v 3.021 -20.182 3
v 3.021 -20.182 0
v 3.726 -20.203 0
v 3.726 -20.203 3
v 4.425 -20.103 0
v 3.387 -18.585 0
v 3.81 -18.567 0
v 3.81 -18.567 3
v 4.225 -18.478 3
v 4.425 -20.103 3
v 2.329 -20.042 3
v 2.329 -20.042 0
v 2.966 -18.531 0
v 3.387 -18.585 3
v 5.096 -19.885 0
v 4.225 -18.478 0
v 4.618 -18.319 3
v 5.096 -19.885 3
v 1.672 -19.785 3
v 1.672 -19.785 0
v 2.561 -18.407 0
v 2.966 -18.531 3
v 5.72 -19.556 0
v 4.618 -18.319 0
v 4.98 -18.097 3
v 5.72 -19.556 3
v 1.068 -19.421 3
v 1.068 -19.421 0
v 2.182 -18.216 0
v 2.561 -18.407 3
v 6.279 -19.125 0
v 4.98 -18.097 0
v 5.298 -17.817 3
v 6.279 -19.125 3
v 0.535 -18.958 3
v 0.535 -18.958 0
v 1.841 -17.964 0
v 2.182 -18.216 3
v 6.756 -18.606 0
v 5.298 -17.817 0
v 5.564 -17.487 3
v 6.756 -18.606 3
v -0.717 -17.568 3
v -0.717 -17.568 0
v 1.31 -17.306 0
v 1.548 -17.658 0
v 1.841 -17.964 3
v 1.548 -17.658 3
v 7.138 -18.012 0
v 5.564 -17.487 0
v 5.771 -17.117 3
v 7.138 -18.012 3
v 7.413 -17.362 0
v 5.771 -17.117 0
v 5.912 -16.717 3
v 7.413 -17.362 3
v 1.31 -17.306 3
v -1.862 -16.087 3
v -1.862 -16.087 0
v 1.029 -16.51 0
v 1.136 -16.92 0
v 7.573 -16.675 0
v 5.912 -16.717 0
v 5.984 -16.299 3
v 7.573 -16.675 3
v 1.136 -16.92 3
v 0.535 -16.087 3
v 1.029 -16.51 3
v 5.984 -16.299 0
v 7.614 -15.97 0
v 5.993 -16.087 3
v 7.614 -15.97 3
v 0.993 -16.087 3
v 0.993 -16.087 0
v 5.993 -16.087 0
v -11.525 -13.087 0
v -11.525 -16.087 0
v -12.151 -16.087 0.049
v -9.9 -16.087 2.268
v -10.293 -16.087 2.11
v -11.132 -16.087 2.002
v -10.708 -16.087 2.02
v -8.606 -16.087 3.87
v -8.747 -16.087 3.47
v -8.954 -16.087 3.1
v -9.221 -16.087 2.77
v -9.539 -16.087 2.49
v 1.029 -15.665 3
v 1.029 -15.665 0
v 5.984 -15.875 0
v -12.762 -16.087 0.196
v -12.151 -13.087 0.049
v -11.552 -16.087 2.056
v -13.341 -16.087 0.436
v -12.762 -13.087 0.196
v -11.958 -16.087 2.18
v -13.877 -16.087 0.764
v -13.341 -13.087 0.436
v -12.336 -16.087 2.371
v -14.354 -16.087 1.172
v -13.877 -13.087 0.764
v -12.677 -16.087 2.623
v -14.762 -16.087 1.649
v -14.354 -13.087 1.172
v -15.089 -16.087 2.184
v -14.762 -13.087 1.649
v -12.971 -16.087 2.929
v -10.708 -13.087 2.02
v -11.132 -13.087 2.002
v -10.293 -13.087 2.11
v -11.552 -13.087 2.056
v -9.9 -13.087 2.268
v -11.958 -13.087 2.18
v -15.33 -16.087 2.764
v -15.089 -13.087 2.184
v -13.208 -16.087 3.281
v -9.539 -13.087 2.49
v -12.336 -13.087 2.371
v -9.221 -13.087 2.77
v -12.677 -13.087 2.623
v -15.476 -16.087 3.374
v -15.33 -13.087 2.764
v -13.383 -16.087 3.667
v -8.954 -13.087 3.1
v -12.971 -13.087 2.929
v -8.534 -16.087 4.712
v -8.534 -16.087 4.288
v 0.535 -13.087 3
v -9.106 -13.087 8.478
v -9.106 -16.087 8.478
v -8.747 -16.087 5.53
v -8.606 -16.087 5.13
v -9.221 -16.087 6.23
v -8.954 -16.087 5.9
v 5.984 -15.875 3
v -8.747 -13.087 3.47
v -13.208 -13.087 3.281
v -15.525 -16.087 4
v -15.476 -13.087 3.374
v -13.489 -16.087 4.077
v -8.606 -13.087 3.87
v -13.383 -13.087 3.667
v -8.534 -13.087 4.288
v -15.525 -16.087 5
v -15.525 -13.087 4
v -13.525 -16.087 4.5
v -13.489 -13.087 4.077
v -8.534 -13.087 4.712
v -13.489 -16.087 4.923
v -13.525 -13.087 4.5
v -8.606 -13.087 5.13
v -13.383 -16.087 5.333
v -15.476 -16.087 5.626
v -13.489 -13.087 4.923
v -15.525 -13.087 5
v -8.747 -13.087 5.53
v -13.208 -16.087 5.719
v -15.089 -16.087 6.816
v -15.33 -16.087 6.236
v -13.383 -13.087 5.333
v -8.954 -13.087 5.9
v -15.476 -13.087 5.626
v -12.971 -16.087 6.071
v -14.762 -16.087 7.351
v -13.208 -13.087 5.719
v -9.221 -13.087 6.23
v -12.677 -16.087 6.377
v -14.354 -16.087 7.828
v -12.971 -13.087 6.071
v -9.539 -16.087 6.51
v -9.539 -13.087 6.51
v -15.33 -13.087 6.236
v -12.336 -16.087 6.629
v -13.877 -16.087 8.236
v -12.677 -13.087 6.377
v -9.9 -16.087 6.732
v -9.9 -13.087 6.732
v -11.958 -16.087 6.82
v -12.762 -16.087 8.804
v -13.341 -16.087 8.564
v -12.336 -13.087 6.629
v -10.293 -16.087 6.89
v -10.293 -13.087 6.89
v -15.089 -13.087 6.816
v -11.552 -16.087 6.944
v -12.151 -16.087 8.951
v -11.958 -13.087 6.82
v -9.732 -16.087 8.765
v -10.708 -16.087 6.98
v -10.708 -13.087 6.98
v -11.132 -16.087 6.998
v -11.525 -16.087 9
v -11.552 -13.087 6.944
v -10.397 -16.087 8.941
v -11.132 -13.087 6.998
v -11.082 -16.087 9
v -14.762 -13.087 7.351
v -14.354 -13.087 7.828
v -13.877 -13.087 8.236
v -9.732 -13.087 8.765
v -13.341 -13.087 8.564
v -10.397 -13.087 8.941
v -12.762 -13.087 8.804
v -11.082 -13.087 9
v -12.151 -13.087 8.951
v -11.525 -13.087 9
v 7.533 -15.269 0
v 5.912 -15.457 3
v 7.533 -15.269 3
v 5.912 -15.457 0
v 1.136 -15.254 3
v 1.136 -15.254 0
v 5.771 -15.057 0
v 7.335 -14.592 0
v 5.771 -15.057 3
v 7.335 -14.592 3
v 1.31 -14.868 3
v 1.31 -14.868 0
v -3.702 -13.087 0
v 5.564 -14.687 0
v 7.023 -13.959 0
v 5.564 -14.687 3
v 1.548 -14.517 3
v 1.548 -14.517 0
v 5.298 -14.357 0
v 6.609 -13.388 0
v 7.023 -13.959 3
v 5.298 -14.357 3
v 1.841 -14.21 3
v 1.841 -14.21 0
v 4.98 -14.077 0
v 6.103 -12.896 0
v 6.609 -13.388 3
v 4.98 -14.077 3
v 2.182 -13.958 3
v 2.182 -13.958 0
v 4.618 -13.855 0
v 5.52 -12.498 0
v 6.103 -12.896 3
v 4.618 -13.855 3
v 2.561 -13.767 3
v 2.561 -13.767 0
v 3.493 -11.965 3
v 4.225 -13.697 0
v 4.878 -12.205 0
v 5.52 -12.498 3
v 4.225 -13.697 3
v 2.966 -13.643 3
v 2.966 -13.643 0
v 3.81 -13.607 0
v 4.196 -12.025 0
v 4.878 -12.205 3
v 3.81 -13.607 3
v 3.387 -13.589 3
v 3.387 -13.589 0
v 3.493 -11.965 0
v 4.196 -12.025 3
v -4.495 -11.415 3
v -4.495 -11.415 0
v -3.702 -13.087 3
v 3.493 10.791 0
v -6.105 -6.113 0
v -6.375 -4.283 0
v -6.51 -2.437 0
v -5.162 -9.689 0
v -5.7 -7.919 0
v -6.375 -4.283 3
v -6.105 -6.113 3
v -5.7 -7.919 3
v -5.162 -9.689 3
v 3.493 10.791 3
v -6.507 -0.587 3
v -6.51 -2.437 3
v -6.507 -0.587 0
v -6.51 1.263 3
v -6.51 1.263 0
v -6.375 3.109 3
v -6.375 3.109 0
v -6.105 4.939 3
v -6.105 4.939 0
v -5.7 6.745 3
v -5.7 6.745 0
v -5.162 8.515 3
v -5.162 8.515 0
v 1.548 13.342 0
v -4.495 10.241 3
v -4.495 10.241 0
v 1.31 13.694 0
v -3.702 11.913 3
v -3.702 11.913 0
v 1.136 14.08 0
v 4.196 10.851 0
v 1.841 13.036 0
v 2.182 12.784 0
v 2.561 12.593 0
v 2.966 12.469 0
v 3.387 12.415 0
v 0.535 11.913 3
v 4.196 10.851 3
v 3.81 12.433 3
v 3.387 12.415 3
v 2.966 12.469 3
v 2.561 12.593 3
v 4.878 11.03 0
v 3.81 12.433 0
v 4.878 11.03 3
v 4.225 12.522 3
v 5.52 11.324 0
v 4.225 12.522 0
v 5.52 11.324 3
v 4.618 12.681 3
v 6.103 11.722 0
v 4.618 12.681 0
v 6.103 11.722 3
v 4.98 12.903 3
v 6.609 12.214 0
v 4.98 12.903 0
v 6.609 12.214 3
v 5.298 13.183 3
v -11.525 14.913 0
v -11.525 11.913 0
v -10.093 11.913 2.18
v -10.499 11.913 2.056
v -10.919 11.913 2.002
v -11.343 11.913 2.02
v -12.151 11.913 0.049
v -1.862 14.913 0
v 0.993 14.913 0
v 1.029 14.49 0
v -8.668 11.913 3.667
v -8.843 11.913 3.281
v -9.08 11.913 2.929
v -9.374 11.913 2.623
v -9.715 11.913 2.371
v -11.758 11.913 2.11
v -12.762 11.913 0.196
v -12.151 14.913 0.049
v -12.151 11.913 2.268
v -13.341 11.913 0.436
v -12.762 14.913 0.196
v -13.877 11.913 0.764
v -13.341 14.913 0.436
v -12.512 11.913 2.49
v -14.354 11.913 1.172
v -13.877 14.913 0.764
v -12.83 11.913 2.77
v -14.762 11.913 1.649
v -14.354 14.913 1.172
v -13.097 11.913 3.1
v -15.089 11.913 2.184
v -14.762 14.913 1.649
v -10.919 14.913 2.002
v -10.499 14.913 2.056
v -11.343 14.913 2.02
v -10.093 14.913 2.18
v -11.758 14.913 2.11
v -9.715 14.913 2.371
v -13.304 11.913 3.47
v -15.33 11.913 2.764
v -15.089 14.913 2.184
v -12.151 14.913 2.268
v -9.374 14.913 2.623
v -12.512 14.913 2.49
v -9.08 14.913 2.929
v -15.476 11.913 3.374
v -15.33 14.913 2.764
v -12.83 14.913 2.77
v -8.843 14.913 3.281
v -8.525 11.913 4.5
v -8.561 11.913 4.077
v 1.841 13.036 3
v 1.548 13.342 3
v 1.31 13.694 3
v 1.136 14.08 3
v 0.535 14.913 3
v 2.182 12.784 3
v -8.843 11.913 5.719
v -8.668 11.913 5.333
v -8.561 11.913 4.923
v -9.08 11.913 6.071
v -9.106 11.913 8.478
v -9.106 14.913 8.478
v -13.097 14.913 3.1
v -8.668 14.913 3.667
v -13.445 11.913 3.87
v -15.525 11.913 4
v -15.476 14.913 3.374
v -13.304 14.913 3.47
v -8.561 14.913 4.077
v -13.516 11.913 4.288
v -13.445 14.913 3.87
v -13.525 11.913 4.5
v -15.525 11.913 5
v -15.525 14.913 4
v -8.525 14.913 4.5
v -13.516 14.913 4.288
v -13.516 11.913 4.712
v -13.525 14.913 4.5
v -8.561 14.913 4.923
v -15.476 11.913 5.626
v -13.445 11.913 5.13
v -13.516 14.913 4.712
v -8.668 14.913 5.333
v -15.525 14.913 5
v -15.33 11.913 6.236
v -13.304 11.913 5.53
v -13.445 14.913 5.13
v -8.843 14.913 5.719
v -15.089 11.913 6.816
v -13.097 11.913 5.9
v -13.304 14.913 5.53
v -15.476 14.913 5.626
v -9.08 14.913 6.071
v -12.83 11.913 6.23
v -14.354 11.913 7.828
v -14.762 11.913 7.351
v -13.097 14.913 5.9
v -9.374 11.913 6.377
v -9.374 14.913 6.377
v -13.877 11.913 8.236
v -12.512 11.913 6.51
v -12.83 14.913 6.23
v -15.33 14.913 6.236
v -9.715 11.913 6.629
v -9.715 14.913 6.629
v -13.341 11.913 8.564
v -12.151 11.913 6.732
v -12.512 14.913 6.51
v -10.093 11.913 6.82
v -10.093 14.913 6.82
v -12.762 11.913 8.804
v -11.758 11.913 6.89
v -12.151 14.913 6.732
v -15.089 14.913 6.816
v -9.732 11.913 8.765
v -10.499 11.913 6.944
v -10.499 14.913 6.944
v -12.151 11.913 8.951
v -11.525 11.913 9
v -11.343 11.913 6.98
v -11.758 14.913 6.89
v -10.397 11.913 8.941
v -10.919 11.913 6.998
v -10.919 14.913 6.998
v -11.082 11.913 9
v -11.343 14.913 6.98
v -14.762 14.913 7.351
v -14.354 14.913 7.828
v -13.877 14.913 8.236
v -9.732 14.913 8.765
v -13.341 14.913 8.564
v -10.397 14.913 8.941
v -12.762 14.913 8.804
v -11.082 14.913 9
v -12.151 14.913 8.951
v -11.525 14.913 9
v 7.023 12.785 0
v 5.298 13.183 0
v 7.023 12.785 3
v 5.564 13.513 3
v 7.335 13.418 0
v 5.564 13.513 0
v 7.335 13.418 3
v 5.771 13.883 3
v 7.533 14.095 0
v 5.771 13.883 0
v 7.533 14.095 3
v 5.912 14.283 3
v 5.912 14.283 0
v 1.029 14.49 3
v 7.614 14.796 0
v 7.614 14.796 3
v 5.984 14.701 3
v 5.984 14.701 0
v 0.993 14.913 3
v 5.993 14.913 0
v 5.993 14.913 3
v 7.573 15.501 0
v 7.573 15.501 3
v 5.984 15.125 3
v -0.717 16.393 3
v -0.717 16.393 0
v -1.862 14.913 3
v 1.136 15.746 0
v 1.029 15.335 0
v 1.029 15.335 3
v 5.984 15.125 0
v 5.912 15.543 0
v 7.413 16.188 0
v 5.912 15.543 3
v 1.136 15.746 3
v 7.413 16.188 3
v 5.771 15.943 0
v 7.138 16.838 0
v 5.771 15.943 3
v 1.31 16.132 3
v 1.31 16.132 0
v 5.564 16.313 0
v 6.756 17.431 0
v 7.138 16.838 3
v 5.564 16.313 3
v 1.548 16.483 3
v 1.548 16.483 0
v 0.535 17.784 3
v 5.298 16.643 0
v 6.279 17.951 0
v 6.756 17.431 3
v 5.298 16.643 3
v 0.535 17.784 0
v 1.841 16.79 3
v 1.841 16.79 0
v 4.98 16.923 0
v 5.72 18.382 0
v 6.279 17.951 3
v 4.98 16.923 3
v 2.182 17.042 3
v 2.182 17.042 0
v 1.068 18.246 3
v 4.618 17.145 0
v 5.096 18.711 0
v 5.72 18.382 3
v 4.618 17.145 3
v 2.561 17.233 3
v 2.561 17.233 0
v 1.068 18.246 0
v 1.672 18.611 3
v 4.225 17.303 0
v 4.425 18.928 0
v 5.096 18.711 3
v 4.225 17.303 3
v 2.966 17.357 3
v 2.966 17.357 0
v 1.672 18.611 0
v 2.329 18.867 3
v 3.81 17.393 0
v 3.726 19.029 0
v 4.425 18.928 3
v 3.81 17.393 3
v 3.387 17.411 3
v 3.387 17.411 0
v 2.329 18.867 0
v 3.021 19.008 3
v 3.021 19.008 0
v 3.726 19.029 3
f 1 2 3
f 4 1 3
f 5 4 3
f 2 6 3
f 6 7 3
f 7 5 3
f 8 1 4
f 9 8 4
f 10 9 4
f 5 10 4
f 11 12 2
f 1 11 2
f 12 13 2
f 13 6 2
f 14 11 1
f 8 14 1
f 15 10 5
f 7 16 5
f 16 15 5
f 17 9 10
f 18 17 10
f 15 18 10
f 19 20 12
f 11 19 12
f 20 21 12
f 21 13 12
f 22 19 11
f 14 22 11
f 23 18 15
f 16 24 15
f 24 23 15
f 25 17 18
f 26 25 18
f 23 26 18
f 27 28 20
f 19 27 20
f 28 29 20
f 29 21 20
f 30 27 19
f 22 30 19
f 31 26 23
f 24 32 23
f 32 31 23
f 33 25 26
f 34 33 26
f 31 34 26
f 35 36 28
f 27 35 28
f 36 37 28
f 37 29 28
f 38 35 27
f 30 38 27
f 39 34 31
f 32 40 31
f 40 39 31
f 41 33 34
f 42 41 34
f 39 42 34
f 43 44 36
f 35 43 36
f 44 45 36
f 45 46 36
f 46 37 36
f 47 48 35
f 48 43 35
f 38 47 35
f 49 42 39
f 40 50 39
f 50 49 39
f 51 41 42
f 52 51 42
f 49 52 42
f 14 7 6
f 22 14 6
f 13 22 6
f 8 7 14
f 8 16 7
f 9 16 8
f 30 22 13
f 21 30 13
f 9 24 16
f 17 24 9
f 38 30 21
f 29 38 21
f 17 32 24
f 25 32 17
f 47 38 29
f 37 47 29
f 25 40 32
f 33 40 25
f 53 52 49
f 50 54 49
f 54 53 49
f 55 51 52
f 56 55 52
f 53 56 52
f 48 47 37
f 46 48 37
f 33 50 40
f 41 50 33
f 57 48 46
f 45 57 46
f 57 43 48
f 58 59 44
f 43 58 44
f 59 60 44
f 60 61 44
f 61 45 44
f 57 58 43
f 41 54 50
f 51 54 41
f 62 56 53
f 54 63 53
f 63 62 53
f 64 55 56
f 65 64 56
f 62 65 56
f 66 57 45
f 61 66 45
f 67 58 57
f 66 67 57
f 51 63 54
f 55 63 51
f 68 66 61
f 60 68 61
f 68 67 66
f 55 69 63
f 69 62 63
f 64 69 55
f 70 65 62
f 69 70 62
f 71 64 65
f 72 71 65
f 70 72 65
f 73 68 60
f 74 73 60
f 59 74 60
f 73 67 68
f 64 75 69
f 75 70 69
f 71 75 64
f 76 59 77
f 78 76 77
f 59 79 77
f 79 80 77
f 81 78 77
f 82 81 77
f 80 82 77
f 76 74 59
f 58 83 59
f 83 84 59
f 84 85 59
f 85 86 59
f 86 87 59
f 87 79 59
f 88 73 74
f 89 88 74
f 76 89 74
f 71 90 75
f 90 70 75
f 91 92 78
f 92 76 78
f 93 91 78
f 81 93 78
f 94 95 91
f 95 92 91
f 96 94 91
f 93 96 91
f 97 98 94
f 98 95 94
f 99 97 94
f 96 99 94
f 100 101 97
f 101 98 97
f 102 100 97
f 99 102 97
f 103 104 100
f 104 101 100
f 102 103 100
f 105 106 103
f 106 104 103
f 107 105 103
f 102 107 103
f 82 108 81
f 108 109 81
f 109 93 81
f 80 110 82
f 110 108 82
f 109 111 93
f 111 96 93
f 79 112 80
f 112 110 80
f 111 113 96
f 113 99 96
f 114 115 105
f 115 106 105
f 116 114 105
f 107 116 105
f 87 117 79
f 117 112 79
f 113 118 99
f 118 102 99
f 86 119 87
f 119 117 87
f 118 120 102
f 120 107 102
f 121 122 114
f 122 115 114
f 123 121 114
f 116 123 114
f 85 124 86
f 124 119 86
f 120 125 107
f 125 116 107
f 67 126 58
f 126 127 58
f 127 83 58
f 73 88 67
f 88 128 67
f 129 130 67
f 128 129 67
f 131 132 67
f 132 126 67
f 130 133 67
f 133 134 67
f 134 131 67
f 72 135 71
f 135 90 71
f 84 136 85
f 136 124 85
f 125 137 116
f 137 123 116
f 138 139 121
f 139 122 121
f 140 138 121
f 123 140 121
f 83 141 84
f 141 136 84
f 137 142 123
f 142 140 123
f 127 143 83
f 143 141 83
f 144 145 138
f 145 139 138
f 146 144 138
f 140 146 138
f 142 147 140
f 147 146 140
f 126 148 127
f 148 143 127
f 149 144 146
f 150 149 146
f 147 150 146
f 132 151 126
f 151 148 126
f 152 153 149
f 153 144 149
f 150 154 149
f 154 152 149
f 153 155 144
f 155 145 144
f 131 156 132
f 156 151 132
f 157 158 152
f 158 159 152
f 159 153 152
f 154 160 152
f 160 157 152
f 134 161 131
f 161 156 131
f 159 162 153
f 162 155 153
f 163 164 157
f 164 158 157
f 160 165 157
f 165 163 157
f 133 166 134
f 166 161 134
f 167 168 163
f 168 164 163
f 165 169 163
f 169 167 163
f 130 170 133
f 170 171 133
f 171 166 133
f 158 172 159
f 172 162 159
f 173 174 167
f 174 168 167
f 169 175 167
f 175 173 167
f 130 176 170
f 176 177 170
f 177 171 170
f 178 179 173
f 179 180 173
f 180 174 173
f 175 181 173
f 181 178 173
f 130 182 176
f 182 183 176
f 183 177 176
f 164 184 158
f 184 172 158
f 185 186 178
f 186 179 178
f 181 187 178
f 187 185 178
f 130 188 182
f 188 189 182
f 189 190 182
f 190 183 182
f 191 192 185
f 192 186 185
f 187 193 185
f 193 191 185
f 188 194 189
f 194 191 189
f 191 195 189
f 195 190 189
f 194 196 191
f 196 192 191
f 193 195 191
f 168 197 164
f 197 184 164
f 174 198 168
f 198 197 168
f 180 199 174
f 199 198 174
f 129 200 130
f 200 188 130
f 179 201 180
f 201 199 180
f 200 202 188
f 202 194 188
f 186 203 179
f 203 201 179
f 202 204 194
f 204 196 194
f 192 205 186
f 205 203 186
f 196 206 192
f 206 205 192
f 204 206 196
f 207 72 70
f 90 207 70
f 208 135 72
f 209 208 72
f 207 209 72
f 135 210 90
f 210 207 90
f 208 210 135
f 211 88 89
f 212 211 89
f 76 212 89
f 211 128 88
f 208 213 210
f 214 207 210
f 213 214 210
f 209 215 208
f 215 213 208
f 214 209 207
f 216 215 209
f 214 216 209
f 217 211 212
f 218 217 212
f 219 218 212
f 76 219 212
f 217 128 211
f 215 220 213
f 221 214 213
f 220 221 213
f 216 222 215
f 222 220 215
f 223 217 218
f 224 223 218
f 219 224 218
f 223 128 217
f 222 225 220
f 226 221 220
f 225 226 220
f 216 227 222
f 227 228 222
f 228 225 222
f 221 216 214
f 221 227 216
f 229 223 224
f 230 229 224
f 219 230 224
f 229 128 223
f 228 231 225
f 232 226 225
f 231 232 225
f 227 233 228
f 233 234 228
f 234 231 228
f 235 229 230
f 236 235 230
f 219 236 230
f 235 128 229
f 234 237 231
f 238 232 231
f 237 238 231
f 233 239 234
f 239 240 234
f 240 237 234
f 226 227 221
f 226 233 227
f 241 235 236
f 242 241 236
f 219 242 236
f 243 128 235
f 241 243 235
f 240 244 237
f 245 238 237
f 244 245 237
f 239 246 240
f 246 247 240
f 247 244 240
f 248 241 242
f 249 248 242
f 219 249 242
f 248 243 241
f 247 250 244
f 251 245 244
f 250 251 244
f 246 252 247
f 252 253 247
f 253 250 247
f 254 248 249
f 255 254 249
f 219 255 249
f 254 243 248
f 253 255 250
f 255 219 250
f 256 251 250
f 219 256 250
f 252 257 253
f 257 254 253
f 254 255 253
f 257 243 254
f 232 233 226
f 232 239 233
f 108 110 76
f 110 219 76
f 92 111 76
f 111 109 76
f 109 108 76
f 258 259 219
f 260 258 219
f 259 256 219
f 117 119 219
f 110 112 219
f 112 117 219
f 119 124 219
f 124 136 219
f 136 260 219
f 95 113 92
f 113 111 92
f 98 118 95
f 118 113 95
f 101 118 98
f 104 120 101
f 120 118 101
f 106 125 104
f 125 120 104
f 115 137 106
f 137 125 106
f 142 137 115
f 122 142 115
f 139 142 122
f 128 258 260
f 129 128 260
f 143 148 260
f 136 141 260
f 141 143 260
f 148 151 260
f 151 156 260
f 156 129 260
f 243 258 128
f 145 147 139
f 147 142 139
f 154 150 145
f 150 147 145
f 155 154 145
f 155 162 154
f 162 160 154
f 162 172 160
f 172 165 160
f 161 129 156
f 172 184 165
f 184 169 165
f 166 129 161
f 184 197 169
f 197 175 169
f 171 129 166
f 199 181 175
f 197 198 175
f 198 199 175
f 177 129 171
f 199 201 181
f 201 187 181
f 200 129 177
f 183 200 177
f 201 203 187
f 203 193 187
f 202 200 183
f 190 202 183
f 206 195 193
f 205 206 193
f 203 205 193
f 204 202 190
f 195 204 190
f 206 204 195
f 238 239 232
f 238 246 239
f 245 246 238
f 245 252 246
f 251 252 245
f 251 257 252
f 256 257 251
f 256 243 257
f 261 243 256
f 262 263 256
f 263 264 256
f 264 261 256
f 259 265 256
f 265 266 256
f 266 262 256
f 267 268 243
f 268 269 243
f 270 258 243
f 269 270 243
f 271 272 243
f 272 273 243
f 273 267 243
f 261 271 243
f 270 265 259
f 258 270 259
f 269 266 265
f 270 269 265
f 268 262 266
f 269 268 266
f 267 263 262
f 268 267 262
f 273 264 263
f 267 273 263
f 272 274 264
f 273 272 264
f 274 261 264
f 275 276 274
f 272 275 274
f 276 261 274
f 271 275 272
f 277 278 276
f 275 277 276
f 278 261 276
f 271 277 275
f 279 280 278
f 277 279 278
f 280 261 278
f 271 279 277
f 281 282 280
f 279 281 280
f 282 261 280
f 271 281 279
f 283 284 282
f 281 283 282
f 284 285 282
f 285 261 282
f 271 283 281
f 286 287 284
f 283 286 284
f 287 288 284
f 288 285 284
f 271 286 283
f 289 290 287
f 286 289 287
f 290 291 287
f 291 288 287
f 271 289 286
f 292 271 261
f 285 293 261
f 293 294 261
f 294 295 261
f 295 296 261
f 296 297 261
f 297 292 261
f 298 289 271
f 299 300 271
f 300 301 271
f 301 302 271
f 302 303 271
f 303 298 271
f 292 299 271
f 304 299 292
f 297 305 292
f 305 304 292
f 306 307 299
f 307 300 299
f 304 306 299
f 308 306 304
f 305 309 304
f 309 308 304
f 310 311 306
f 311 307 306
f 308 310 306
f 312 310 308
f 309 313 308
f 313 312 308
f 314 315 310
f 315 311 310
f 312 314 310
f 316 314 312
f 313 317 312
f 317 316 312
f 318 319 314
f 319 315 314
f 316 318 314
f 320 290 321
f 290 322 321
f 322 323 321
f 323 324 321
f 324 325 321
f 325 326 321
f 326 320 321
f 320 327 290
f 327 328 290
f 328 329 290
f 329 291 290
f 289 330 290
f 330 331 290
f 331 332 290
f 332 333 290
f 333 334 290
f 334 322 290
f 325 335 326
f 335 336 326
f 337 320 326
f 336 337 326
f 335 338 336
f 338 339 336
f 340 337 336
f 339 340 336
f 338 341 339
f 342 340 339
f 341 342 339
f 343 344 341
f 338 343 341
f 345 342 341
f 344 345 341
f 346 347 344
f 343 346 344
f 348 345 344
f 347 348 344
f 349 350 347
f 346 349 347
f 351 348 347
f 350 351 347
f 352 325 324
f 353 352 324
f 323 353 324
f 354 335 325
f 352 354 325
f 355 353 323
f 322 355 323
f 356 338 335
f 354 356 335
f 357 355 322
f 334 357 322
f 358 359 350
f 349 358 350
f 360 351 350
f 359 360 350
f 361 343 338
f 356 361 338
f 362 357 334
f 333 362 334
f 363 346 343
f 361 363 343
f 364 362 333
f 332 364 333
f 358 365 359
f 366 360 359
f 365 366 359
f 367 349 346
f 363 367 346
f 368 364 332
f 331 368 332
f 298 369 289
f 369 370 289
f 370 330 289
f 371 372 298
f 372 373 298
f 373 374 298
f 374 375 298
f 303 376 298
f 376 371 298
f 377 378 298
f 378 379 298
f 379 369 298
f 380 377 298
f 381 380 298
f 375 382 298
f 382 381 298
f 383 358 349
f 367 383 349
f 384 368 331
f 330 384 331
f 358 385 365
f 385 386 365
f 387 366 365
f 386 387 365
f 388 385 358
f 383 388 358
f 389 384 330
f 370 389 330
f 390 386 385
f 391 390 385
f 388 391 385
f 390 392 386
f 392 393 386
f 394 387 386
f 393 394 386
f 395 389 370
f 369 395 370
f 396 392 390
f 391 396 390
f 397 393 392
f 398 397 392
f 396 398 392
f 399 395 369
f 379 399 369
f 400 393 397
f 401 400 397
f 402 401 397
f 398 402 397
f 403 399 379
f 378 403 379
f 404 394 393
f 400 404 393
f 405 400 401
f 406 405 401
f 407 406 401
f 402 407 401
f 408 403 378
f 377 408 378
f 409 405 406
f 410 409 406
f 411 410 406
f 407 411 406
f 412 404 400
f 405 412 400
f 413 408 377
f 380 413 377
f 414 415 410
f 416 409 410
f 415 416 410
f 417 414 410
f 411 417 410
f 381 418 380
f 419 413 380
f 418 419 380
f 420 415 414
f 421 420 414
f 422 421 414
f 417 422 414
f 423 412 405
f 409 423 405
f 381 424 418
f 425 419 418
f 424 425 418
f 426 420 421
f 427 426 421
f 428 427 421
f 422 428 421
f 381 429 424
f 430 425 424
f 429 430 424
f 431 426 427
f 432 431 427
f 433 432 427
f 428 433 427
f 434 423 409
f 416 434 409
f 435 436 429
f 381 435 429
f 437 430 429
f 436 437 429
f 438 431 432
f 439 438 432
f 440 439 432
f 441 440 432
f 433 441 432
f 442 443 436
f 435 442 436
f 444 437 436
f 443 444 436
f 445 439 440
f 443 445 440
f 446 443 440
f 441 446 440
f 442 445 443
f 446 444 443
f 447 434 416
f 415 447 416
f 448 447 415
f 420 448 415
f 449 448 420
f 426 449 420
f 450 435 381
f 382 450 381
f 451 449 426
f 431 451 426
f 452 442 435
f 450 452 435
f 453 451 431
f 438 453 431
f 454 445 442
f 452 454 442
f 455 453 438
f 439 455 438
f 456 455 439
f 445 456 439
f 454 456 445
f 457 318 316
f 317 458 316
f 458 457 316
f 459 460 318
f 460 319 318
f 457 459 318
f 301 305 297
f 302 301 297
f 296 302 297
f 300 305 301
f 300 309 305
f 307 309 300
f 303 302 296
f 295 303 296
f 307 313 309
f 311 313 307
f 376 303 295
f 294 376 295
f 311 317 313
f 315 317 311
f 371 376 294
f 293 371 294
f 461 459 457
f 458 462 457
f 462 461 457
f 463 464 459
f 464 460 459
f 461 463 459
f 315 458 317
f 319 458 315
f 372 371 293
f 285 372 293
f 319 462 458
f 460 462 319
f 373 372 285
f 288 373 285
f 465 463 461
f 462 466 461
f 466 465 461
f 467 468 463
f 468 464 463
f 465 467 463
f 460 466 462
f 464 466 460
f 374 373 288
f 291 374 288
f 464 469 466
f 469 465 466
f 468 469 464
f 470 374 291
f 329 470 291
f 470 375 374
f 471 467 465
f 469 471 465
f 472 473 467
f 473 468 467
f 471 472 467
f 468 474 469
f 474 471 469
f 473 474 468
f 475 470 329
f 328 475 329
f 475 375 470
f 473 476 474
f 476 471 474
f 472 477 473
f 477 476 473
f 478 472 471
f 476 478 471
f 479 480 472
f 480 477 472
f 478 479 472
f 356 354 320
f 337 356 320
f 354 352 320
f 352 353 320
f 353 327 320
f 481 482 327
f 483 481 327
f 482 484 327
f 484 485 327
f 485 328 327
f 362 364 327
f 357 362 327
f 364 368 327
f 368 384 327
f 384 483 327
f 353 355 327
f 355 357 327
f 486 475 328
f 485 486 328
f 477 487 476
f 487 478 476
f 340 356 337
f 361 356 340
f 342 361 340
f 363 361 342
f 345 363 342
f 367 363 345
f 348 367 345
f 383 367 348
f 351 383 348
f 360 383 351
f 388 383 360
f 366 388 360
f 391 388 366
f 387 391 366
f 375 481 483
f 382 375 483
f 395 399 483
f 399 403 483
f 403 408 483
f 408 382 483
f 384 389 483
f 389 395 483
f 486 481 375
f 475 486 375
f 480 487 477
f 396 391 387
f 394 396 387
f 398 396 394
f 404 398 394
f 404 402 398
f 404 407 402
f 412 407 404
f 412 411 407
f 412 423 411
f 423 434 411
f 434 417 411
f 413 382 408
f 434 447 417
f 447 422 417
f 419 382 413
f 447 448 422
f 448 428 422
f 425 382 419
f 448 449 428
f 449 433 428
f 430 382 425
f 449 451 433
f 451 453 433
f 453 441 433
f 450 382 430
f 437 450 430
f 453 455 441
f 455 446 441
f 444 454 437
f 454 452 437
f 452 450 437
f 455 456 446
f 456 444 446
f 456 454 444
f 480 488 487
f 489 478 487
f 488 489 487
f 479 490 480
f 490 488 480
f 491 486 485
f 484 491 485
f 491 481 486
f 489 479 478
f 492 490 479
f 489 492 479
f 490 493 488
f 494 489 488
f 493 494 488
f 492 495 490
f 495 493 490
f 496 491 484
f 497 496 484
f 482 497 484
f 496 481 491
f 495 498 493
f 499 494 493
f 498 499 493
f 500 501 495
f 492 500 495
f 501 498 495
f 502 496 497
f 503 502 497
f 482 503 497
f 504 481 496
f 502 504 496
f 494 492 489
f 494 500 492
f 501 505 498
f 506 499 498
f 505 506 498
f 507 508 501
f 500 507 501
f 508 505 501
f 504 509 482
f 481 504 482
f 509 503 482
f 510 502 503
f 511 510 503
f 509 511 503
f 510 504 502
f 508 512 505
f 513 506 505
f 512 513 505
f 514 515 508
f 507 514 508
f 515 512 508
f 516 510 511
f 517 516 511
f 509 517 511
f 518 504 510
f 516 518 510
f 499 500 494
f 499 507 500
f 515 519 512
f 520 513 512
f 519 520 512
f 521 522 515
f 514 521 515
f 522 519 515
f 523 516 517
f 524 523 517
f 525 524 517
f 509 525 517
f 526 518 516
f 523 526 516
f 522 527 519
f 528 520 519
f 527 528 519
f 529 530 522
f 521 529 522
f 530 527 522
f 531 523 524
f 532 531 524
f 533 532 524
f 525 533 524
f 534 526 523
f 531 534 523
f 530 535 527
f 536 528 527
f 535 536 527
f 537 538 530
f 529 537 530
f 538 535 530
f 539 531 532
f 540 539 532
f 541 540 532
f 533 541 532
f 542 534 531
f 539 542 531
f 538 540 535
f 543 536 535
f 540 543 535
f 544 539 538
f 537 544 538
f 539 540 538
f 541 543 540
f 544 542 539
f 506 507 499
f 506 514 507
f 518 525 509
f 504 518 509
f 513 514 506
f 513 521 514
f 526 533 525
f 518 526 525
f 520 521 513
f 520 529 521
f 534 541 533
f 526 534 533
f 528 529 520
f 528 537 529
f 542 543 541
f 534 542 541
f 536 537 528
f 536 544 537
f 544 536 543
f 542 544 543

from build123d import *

# Parameters (mm, degrees)
CROQUIS2_R              = 2.5
SALIENTE_EXTRUIR1_DEPTH = 3
SALIENTE_EXTRUIR2_START = 12.5
CROQUIS4_R              = 2.5
SALIENTE_EXTRUIR2_DEPTH = 3


with BuildPart() as part:
    # Croquis2 → Saliente-Extruir1 (new body)
    with BuildSketch(Plane.XY):
        with BuildLine():
            Line((3.492952335, 10.790611409), (3.492952335, -11.964892683))
            ThreePointArc((3.492952335, -11.964892683), (7.2895288, -17.69304703), (0.534883591, -18.958160926))
            ThreePointArc((0.534883591, -18.958160926), (-4.86923602, -10.494496462), (-6.507047205, -0.587140637))
            ThreePointArc((-6.507047205, -0.587140637), (-4.86923602, 9.320215188), (0.534883591, 17.783879652))
            ThreePointArc((0.534883591, 17.783879652), (7.2895288, 16.518765755), (3.492952335, 10.790611409))
        make_face()
        with Locations((3.492952335, 14.912859363)):
            Circle(CROQUIS2_R, mode=Mode.SUBTRACT)
        with Locations((3.492952335, -16.087140637)):
            Circle(CROQUIS2_R, mode=Mode.SUBTRACT)
    extrude(amount=SALIENTE_EXTRUIR1_DEPTH)

    # Croquis4 → Saliente-Extruir2 (add)
    with BuildSketch(Plane(origin=(0, -0.587140637, 0), x_dir=(1, 0, 0), z_dir=(0, 1, 0)).offset(SALIENTE_EXTRUIR2_START)):
        with BuildLine():
            Line((0.534883591, -3), (-9.106451157, -8.477853714))
            ThreePointArc((-9.106451157, -8.477853714), (-10.060534072, -8.867260972), (-11.082440414, -9))
            Line((-11.082440414, -9), (-11.52545838, -9))
            ThreePointArc((-11.52545838, -9), (-14.353885504, -7.828427125), (-15.52545838, -5))
            Line((-15.52545838, -5), (-15.52545838, -4))
            ThreePointArc((-15.52545838, -4), (-14.353885504, -1.171572875), (-11.52545838, 0))
            Line((-11.52545838, 0), (0.534883591, 0))
            Line((0.534883591, 0), (0.534883591, -3))
        make_face()
        with Locations(Location((-11.02545838, -4.5, 0), (0, 0, 180))):
            Circle(CROQUIS4_R, mode=Mode.SUBTRACT)
    saliente_extruir2 = extrude(amount=SALIENTE_EXTRUIR2_DEPTH)

    # Simetría1: Saliente-Extruir2 across plane
    add(saliente_extruir2.mirror(Plane.ZX.offset(-0.587140637)))


solid = part.part
